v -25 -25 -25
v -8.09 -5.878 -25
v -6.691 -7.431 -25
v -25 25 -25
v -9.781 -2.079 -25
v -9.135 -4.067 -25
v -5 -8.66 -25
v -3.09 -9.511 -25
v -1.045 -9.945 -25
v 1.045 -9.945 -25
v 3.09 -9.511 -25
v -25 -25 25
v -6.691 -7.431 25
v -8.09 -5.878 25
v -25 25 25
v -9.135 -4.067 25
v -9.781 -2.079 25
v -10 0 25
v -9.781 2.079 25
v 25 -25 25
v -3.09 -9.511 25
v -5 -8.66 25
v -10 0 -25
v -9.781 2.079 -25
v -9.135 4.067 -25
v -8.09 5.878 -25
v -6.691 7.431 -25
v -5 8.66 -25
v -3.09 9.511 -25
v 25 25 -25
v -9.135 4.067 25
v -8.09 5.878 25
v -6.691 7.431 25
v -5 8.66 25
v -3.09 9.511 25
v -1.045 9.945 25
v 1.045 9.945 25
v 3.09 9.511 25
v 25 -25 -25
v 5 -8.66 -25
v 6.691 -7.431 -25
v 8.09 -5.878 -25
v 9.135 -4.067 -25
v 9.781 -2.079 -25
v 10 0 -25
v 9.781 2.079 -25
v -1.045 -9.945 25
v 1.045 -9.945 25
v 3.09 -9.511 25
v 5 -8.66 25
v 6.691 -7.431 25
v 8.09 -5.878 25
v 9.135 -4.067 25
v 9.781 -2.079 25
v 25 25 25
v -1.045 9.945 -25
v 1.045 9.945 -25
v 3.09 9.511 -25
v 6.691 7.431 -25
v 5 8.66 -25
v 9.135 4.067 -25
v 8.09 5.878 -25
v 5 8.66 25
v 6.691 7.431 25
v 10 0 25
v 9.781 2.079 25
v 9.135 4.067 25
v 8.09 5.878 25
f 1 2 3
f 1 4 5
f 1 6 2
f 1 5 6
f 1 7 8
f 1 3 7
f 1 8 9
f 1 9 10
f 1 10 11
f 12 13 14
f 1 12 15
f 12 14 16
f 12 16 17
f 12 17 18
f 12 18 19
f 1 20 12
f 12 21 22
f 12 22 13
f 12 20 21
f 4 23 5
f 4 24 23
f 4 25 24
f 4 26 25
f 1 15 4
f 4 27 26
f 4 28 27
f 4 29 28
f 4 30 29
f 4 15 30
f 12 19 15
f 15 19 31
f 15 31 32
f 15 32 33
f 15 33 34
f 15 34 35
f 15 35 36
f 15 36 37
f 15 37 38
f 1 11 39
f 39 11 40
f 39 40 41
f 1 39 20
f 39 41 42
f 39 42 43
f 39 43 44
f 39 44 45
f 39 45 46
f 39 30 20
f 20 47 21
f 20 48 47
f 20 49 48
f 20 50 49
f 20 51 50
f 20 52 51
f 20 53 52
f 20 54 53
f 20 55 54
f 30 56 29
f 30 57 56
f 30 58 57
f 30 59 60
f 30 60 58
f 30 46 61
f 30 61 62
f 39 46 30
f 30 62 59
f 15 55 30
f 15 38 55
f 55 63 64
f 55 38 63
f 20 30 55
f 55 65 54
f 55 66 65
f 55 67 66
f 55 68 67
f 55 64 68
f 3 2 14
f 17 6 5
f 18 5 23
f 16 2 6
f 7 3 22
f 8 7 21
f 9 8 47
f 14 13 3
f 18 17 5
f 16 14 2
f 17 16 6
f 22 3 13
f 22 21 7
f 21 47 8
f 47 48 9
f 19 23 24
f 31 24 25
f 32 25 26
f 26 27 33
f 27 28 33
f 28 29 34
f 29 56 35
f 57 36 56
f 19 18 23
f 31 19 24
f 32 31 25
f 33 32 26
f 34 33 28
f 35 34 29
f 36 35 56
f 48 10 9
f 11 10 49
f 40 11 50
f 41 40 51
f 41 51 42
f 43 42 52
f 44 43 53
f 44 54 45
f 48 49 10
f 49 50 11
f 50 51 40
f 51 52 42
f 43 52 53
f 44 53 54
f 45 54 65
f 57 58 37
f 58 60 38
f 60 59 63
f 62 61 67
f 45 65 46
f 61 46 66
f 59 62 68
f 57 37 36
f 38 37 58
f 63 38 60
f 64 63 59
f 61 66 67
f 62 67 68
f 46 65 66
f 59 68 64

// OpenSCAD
// 50mm角の立方体の中央にz軸方向の直径20mm貫通穴

difference() {
    cube([50, 50, 50], center=true);
    cylinder(h=60, d=20, center=true);
}
